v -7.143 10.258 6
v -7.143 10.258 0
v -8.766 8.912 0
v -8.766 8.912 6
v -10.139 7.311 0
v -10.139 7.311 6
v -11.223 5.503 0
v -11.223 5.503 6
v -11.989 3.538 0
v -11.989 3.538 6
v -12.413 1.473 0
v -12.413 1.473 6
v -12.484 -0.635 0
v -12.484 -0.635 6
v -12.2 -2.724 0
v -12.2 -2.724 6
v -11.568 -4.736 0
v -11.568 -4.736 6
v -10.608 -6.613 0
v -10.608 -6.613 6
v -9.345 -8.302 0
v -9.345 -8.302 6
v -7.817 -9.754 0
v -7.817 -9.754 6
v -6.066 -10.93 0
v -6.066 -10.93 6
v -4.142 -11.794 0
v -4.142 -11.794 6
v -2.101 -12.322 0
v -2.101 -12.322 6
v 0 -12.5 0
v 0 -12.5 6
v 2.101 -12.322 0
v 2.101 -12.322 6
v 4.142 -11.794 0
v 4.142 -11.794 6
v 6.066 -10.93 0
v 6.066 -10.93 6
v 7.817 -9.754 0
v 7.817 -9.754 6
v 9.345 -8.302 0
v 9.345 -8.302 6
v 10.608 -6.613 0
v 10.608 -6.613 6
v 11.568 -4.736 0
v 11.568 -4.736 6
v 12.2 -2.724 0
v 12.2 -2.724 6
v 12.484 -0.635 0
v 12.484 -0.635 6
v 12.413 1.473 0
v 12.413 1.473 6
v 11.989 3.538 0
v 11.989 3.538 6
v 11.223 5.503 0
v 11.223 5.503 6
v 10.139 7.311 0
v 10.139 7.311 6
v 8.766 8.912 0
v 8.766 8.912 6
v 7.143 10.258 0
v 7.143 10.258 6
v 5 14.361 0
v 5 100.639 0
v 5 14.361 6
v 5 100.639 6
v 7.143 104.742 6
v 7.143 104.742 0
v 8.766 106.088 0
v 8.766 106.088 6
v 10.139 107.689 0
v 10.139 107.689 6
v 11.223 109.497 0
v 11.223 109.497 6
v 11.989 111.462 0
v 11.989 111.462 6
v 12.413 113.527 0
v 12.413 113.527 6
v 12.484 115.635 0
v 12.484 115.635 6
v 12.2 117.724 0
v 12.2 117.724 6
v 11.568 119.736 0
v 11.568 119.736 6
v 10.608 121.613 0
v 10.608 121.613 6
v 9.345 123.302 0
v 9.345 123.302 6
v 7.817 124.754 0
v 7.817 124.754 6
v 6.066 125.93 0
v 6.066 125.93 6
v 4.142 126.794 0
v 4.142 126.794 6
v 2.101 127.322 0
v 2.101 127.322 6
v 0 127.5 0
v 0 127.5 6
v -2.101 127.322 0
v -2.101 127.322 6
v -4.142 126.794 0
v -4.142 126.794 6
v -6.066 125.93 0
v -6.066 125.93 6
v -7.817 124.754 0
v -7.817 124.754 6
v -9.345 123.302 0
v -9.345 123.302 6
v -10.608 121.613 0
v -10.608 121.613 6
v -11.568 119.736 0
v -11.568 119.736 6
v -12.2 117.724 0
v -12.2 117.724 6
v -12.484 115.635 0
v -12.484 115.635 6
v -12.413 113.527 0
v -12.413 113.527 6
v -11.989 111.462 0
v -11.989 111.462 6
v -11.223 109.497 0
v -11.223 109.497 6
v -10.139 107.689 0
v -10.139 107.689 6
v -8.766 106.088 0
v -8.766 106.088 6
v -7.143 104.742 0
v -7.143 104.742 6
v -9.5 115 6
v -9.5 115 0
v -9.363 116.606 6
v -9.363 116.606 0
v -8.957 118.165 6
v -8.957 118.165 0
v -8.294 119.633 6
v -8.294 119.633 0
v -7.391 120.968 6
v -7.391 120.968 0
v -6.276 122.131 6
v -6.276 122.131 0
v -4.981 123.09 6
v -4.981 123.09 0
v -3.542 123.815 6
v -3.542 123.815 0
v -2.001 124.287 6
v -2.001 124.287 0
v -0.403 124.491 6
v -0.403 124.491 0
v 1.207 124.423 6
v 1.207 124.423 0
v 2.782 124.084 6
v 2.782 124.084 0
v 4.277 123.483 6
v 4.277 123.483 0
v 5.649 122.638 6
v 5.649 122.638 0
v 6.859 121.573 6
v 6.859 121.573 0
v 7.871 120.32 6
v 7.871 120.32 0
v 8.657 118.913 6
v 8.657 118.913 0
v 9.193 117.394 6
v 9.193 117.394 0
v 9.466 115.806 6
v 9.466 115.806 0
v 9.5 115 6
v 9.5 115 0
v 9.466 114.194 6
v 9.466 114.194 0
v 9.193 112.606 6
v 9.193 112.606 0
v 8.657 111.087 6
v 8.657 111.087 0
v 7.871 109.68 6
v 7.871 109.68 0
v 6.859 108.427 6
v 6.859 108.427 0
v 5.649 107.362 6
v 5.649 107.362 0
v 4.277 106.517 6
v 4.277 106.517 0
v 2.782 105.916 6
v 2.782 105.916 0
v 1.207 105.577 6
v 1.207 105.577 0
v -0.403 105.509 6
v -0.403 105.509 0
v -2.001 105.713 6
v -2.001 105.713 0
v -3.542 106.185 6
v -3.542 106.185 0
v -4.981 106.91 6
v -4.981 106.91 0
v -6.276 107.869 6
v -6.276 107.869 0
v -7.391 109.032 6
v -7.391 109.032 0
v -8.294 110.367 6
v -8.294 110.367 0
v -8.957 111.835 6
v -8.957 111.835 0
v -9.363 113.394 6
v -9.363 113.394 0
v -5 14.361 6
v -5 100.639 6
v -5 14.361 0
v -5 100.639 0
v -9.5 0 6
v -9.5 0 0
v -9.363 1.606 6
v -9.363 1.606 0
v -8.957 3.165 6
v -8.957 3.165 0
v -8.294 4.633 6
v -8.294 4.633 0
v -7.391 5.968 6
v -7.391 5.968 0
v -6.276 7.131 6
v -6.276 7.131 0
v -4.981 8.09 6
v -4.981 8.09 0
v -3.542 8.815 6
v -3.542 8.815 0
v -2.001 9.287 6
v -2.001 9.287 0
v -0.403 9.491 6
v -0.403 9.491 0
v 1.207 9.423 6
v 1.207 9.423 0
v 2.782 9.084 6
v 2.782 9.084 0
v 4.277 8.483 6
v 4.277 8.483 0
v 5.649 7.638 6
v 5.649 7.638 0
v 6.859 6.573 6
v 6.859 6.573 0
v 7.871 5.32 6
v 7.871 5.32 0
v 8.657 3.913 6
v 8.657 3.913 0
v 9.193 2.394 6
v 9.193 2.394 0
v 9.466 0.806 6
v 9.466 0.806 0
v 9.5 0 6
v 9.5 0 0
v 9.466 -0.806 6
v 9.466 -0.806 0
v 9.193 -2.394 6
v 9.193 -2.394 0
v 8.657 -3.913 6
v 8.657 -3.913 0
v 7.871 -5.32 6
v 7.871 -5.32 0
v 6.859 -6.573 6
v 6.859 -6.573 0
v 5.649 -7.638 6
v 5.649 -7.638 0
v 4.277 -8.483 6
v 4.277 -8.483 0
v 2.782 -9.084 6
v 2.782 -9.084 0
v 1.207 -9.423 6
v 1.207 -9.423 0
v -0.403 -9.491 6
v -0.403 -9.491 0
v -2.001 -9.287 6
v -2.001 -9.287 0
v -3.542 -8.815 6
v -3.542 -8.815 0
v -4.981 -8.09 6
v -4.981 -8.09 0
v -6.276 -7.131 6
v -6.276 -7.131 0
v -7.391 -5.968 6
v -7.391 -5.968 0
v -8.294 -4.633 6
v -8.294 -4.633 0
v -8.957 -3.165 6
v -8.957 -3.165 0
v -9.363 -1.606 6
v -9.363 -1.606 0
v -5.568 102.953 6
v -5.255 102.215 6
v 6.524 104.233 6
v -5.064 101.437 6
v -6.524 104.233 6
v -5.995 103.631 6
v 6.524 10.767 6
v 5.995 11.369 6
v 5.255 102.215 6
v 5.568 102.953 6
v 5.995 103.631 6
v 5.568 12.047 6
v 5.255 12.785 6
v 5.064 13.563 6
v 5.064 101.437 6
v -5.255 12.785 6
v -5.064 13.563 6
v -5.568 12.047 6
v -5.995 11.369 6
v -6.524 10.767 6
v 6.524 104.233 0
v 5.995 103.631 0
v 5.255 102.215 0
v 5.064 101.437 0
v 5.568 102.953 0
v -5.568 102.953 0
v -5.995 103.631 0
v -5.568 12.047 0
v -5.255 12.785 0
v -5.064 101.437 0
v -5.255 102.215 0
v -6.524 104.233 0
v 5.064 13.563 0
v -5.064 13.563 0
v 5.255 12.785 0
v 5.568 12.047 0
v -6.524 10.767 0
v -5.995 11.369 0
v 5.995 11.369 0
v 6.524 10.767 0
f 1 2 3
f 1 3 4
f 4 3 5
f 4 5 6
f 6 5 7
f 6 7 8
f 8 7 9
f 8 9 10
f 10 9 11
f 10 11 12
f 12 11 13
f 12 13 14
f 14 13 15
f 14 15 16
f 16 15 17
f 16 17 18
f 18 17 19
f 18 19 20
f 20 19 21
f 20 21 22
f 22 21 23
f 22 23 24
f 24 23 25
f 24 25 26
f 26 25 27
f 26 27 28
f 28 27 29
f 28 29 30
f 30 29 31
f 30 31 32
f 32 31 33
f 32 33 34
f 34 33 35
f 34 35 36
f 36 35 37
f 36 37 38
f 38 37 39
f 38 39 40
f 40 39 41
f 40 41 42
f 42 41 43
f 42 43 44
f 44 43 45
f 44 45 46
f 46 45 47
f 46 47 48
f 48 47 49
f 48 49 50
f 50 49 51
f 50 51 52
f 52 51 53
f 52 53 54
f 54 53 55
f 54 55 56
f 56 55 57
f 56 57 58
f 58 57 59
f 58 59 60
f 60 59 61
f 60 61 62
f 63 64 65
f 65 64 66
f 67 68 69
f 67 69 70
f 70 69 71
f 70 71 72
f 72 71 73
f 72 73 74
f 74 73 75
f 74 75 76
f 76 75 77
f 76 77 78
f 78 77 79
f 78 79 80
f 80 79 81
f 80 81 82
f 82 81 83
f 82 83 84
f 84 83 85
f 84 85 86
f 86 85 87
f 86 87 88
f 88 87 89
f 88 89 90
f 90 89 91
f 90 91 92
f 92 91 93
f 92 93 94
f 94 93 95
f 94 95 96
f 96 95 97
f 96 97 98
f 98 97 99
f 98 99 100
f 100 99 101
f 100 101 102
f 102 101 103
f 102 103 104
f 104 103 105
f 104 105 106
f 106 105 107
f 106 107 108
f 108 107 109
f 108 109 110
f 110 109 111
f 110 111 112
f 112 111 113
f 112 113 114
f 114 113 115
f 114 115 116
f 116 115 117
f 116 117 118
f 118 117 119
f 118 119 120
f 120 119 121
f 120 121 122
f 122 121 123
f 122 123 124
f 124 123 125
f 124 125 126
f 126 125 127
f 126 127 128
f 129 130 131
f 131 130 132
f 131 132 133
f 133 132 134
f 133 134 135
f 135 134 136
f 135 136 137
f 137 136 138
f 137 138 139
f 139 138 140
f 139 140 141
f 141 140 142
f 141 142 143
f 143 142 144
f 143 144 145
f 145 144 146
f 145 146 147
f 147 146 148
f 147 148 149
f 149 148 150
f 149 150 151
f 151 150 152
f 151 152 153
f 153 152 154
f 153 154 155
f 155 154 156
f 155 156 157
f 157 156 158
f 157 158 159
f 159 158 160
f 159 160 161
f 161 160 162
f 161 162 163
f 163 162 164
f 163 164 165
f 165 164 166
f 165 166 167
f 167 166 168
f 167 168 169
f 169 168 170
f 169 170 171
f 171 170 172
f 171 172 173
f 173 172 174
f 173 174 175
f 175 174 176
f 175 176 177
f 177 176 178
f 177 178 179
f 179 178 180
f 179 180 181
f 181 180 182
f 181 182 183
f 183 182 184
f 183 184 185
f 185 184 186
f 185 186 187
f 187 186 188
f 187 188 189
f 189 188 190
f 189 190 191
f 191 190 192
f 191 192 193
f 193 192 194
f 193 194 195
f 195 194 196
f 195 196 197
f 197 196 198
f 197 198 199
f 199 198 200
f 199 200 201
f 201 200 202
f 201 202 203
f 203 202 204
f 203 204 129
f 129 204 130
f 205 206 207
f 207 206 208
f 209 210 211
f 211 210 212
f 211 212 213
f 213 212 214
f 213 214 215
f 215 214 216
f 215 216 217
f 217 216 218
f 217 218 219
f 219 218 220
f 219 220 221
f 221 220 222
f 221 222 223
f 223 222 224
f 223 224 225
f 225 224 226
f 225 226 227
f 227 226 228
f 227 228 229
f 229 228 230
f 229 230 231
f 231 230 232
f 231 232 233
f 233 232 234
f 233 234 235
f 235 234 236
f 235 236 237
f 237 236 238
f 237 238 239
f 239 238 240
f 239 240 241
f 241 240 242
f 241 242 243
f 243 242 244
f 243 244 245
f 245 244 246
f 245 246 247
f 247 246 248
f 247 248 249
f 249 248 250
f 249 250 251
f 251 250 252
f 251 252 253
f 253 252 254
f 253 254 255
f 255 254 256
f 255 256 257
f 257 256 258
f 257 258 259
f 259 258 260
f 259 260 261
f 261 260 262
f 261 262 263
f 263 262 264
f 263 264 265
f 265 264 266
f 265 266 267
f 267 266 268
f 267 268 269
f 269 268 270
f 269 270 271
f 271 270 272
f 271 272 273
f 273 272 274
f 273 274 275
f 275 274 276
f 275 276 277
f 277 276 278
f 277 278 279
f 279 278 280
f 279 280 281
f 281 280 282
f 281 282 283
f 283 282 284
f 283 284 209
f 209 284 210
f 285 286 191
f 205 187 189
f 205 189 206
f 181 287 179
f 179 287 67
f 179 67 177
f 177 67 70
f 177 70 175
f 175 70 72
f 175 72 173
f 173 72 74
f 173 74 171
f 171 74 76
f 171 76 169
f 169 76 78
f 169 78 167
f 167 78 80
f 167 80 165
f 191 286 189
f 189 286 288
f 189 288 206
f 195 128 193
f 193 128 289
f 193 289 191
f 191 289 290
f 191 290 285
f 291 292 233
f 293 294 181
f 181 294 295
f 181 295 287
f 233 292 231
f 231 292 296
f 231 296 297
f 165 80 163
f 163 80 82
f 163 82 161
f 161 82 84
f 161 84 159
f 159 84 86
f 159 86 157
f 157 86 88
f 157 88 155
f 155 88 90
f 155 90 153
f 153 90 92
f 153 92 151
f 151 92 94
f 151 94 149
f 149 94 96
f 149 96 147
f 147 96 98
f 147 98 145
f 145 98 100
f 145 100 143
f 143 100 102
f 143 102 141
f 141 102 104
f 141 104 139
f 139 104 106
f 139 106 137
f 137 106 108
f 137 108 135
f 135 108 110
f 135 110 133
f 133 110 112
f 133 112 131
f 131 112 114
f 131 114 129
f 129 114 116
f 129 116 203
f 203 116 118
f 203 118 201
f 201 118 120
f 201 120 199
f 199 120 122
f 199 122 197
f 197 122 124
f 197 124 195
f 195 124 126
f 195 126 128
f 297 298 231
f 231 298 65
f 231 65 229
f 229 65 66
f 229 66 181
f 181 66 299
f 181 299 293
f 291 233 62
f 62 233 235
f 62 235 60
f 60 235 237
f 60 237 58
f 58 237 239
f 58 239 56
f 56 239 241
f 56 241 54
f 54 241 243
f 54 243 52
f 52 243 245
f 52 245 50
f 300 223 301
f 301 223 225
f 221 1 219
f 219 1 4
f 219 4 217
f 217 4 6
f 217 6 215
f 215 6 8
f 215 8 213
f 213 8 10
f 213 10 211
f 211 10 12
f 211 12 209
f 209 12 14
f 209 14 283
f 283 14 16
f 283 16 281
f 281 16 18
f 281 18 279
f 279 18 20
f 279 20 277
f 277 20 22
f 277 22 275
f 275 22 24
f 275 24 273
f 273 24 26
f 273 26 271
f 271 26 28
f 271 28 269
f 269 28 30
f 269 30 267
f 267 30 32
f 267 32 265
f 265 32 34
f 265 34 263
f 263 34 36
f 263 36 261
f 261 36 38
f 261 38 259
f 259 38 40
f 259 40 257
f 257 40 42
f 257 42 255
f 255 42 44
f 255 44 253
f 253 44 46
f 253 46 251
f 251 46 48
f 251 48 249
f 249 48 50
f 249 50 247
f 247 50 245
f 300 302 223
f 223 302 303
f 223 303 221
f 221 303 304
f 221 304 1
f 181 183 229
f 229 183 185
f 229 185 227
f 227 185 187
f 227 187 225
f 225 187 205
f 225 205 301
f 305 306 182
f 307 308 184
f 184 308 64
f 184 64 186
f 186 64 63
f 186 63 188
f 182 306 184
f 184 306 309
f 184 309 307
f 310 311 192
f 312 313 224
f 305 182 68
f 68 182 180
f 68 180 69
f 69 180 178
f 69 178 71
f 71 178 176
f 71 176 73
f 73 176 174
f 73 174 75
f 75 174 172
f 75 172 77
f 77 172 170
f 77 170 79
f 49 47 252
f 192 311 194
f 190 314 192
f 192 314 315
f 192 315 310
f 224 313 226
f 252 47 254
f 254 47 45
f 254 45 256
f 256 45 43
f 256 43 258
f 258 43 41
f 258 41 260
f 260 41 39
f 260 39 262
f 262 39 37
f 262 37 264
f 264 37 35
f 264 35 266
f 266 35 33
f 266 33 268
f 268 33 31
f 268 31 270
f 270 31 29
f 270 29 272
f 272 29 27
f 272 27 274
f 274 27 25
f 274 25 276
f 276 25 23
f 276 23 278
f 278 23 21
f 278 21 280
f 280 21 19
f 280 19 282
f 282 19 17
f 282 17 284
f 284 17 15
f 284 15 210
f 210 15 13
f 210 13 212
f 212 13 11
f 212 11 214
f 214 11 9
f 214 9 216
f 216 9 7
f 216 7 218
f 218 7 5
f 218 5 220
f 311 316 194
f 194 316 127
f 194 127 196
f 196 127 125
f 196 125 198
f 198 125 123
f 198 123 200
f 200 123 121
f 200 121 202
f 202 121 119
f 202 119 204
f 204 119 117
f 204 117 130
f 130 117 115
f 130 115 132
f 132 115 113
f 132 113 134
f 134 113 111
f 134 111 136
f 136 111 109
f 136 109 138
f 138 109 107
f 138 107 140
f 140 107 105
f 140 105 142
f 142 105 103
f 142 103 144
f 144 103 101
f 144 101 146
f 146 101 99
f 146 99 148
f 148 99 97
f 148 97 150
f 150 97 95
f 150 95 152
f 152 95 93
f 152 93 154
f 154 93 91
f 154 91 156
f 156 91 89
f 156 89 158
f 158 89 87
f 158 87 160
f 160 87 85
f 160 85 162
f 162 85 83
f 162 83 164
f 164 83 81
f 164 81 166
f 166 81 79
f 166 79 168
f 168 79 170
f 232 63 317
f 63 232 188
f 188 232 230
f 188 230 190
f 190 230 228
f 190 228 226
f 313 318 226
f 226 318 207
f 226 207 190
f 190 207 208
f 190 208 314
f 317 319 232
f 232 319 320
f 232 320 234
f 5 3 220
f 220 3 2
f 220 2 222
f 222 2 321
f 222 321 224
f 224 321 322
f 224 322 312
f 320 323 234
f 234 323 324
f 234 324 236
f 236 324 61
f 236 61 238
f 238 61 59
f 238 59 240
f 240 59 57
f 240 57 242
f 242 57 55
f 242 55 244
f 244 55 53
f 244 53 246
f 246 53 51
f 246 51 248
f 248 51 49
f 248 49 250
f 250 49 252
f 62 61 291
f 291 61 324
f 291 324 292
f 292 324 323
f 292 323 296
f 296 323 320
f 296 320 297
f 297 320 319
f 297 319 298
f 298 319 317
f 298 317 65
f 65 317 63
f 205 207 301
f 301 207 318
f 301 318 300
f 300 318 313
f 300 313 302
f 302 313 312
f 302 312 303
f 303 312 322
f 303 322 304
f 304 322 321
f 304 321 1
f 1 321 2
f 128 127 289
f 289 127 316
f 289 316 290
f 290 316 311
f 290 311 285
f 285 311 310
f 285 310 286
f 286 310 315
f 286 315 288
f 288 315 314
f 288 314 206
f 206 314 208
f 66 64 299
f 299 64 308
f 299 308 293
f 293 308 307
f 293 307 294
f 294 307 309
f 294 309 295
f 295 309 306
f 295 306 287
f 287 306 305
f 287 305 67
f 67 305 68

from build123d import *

# Parameters (mm, degrees)
SALIENTE_EXTRUIR1_DEPTH = 6
REDONDEO1_R             = 5


with BuildPart() as part:
    # Croquis1 → Saliente-Extruir1 (new body)
    with BuildSketch(Plane.XY):
        with BuildLine():
            ThreePointArc((-5, 103.543560763), (0, 102.5), (5, 103.543560763))
            Line((5, 103.543560763), (5, 106.922252789))
            ThreePointArc((5, 106.922252789), (0, 105.5), (-5, 106.922252789))
            Line((-5, 106.922252789), (-5, 103.543560763))
        make_face()
        with BuildLine():
            Line((5, 106.922252789), (5, 103.543560763))
            ThreePointArc((5, 103.543560763), (10.458250332, 108.153468031), (12.5, 115))
            ThreePointArc((12.5, 115), (-6.846531969, 125.458250332), (-5, 103.543560763))
            Line((-5, 103.543560763), (-5, 106.922252789))
            ThreePointArc((-5, 106.922252789), (-4.623310502, 123.299096336), (9.5, 115))
            ThreePointArc((9.5, 115), (8.299096336, 110.376689498), (5, 106.922252789))
        make_face()
        with BuildLine():
            ThreePointArc((-5, 11.456439237), (0, 12.5), (5, 11.456439237))
            Line((5, 11.456439237), (5, 103.543560763))
            ThreePointArc((5, 103.543560763), (0, 102.5), (-5, 103.543560763))
            Line((-5, 103.543560763), (-5, 11.456439237))
        make_face()
        with BuildLine():
            ThreePointArc((-5, 8.077747211), (0, 9.5), (5, 8.077747211))
            Line((5, 8.077747211), (5, 11.456439237))
            ThreePointArc((5, 11.456439237), (0, 12.5), (-5, 11.456439237))
            Line((-5, 11.456439237), (-5, 8.077747211))
        make_face()
        with BuildLine():
            Line((5, 11.456439237), (5, 8.077747211))
            ThreePointArc((5, 8.077747211), (8.299096336, 4.623310502), (9.5, 0))
            ThreePointArc((9.5, 0), (-4.623310502, -8.299096336), (-5, 8.077747211))
            Line((-5, 8.077747211), (-5, 11.456439237))
            ThreePointArc((-5, 11.456439237), (-6.846531969, -10.458250332), (12.5, 0))
            ThreePointArc((12.5, 0), (10.458250332, 6.846531969), (5, 11.456439237))
        make_face()
    extrude(amount=SALIENTE_EXTRUIR1_DEPTH)

    # Redondeo1
    redondeo1_edges = [part.edges().sort_by_distance(p)[0] for p in [
        (-5, 11.456439237, 3),
        (-5, 103.543560763, 3),
        (5, 103.543560763, 3),
        (5, 11.456439237, 3),
    ]]
    fillet(redondeo1_edges, radius=REDONDEO1_R)


solid = part.part
